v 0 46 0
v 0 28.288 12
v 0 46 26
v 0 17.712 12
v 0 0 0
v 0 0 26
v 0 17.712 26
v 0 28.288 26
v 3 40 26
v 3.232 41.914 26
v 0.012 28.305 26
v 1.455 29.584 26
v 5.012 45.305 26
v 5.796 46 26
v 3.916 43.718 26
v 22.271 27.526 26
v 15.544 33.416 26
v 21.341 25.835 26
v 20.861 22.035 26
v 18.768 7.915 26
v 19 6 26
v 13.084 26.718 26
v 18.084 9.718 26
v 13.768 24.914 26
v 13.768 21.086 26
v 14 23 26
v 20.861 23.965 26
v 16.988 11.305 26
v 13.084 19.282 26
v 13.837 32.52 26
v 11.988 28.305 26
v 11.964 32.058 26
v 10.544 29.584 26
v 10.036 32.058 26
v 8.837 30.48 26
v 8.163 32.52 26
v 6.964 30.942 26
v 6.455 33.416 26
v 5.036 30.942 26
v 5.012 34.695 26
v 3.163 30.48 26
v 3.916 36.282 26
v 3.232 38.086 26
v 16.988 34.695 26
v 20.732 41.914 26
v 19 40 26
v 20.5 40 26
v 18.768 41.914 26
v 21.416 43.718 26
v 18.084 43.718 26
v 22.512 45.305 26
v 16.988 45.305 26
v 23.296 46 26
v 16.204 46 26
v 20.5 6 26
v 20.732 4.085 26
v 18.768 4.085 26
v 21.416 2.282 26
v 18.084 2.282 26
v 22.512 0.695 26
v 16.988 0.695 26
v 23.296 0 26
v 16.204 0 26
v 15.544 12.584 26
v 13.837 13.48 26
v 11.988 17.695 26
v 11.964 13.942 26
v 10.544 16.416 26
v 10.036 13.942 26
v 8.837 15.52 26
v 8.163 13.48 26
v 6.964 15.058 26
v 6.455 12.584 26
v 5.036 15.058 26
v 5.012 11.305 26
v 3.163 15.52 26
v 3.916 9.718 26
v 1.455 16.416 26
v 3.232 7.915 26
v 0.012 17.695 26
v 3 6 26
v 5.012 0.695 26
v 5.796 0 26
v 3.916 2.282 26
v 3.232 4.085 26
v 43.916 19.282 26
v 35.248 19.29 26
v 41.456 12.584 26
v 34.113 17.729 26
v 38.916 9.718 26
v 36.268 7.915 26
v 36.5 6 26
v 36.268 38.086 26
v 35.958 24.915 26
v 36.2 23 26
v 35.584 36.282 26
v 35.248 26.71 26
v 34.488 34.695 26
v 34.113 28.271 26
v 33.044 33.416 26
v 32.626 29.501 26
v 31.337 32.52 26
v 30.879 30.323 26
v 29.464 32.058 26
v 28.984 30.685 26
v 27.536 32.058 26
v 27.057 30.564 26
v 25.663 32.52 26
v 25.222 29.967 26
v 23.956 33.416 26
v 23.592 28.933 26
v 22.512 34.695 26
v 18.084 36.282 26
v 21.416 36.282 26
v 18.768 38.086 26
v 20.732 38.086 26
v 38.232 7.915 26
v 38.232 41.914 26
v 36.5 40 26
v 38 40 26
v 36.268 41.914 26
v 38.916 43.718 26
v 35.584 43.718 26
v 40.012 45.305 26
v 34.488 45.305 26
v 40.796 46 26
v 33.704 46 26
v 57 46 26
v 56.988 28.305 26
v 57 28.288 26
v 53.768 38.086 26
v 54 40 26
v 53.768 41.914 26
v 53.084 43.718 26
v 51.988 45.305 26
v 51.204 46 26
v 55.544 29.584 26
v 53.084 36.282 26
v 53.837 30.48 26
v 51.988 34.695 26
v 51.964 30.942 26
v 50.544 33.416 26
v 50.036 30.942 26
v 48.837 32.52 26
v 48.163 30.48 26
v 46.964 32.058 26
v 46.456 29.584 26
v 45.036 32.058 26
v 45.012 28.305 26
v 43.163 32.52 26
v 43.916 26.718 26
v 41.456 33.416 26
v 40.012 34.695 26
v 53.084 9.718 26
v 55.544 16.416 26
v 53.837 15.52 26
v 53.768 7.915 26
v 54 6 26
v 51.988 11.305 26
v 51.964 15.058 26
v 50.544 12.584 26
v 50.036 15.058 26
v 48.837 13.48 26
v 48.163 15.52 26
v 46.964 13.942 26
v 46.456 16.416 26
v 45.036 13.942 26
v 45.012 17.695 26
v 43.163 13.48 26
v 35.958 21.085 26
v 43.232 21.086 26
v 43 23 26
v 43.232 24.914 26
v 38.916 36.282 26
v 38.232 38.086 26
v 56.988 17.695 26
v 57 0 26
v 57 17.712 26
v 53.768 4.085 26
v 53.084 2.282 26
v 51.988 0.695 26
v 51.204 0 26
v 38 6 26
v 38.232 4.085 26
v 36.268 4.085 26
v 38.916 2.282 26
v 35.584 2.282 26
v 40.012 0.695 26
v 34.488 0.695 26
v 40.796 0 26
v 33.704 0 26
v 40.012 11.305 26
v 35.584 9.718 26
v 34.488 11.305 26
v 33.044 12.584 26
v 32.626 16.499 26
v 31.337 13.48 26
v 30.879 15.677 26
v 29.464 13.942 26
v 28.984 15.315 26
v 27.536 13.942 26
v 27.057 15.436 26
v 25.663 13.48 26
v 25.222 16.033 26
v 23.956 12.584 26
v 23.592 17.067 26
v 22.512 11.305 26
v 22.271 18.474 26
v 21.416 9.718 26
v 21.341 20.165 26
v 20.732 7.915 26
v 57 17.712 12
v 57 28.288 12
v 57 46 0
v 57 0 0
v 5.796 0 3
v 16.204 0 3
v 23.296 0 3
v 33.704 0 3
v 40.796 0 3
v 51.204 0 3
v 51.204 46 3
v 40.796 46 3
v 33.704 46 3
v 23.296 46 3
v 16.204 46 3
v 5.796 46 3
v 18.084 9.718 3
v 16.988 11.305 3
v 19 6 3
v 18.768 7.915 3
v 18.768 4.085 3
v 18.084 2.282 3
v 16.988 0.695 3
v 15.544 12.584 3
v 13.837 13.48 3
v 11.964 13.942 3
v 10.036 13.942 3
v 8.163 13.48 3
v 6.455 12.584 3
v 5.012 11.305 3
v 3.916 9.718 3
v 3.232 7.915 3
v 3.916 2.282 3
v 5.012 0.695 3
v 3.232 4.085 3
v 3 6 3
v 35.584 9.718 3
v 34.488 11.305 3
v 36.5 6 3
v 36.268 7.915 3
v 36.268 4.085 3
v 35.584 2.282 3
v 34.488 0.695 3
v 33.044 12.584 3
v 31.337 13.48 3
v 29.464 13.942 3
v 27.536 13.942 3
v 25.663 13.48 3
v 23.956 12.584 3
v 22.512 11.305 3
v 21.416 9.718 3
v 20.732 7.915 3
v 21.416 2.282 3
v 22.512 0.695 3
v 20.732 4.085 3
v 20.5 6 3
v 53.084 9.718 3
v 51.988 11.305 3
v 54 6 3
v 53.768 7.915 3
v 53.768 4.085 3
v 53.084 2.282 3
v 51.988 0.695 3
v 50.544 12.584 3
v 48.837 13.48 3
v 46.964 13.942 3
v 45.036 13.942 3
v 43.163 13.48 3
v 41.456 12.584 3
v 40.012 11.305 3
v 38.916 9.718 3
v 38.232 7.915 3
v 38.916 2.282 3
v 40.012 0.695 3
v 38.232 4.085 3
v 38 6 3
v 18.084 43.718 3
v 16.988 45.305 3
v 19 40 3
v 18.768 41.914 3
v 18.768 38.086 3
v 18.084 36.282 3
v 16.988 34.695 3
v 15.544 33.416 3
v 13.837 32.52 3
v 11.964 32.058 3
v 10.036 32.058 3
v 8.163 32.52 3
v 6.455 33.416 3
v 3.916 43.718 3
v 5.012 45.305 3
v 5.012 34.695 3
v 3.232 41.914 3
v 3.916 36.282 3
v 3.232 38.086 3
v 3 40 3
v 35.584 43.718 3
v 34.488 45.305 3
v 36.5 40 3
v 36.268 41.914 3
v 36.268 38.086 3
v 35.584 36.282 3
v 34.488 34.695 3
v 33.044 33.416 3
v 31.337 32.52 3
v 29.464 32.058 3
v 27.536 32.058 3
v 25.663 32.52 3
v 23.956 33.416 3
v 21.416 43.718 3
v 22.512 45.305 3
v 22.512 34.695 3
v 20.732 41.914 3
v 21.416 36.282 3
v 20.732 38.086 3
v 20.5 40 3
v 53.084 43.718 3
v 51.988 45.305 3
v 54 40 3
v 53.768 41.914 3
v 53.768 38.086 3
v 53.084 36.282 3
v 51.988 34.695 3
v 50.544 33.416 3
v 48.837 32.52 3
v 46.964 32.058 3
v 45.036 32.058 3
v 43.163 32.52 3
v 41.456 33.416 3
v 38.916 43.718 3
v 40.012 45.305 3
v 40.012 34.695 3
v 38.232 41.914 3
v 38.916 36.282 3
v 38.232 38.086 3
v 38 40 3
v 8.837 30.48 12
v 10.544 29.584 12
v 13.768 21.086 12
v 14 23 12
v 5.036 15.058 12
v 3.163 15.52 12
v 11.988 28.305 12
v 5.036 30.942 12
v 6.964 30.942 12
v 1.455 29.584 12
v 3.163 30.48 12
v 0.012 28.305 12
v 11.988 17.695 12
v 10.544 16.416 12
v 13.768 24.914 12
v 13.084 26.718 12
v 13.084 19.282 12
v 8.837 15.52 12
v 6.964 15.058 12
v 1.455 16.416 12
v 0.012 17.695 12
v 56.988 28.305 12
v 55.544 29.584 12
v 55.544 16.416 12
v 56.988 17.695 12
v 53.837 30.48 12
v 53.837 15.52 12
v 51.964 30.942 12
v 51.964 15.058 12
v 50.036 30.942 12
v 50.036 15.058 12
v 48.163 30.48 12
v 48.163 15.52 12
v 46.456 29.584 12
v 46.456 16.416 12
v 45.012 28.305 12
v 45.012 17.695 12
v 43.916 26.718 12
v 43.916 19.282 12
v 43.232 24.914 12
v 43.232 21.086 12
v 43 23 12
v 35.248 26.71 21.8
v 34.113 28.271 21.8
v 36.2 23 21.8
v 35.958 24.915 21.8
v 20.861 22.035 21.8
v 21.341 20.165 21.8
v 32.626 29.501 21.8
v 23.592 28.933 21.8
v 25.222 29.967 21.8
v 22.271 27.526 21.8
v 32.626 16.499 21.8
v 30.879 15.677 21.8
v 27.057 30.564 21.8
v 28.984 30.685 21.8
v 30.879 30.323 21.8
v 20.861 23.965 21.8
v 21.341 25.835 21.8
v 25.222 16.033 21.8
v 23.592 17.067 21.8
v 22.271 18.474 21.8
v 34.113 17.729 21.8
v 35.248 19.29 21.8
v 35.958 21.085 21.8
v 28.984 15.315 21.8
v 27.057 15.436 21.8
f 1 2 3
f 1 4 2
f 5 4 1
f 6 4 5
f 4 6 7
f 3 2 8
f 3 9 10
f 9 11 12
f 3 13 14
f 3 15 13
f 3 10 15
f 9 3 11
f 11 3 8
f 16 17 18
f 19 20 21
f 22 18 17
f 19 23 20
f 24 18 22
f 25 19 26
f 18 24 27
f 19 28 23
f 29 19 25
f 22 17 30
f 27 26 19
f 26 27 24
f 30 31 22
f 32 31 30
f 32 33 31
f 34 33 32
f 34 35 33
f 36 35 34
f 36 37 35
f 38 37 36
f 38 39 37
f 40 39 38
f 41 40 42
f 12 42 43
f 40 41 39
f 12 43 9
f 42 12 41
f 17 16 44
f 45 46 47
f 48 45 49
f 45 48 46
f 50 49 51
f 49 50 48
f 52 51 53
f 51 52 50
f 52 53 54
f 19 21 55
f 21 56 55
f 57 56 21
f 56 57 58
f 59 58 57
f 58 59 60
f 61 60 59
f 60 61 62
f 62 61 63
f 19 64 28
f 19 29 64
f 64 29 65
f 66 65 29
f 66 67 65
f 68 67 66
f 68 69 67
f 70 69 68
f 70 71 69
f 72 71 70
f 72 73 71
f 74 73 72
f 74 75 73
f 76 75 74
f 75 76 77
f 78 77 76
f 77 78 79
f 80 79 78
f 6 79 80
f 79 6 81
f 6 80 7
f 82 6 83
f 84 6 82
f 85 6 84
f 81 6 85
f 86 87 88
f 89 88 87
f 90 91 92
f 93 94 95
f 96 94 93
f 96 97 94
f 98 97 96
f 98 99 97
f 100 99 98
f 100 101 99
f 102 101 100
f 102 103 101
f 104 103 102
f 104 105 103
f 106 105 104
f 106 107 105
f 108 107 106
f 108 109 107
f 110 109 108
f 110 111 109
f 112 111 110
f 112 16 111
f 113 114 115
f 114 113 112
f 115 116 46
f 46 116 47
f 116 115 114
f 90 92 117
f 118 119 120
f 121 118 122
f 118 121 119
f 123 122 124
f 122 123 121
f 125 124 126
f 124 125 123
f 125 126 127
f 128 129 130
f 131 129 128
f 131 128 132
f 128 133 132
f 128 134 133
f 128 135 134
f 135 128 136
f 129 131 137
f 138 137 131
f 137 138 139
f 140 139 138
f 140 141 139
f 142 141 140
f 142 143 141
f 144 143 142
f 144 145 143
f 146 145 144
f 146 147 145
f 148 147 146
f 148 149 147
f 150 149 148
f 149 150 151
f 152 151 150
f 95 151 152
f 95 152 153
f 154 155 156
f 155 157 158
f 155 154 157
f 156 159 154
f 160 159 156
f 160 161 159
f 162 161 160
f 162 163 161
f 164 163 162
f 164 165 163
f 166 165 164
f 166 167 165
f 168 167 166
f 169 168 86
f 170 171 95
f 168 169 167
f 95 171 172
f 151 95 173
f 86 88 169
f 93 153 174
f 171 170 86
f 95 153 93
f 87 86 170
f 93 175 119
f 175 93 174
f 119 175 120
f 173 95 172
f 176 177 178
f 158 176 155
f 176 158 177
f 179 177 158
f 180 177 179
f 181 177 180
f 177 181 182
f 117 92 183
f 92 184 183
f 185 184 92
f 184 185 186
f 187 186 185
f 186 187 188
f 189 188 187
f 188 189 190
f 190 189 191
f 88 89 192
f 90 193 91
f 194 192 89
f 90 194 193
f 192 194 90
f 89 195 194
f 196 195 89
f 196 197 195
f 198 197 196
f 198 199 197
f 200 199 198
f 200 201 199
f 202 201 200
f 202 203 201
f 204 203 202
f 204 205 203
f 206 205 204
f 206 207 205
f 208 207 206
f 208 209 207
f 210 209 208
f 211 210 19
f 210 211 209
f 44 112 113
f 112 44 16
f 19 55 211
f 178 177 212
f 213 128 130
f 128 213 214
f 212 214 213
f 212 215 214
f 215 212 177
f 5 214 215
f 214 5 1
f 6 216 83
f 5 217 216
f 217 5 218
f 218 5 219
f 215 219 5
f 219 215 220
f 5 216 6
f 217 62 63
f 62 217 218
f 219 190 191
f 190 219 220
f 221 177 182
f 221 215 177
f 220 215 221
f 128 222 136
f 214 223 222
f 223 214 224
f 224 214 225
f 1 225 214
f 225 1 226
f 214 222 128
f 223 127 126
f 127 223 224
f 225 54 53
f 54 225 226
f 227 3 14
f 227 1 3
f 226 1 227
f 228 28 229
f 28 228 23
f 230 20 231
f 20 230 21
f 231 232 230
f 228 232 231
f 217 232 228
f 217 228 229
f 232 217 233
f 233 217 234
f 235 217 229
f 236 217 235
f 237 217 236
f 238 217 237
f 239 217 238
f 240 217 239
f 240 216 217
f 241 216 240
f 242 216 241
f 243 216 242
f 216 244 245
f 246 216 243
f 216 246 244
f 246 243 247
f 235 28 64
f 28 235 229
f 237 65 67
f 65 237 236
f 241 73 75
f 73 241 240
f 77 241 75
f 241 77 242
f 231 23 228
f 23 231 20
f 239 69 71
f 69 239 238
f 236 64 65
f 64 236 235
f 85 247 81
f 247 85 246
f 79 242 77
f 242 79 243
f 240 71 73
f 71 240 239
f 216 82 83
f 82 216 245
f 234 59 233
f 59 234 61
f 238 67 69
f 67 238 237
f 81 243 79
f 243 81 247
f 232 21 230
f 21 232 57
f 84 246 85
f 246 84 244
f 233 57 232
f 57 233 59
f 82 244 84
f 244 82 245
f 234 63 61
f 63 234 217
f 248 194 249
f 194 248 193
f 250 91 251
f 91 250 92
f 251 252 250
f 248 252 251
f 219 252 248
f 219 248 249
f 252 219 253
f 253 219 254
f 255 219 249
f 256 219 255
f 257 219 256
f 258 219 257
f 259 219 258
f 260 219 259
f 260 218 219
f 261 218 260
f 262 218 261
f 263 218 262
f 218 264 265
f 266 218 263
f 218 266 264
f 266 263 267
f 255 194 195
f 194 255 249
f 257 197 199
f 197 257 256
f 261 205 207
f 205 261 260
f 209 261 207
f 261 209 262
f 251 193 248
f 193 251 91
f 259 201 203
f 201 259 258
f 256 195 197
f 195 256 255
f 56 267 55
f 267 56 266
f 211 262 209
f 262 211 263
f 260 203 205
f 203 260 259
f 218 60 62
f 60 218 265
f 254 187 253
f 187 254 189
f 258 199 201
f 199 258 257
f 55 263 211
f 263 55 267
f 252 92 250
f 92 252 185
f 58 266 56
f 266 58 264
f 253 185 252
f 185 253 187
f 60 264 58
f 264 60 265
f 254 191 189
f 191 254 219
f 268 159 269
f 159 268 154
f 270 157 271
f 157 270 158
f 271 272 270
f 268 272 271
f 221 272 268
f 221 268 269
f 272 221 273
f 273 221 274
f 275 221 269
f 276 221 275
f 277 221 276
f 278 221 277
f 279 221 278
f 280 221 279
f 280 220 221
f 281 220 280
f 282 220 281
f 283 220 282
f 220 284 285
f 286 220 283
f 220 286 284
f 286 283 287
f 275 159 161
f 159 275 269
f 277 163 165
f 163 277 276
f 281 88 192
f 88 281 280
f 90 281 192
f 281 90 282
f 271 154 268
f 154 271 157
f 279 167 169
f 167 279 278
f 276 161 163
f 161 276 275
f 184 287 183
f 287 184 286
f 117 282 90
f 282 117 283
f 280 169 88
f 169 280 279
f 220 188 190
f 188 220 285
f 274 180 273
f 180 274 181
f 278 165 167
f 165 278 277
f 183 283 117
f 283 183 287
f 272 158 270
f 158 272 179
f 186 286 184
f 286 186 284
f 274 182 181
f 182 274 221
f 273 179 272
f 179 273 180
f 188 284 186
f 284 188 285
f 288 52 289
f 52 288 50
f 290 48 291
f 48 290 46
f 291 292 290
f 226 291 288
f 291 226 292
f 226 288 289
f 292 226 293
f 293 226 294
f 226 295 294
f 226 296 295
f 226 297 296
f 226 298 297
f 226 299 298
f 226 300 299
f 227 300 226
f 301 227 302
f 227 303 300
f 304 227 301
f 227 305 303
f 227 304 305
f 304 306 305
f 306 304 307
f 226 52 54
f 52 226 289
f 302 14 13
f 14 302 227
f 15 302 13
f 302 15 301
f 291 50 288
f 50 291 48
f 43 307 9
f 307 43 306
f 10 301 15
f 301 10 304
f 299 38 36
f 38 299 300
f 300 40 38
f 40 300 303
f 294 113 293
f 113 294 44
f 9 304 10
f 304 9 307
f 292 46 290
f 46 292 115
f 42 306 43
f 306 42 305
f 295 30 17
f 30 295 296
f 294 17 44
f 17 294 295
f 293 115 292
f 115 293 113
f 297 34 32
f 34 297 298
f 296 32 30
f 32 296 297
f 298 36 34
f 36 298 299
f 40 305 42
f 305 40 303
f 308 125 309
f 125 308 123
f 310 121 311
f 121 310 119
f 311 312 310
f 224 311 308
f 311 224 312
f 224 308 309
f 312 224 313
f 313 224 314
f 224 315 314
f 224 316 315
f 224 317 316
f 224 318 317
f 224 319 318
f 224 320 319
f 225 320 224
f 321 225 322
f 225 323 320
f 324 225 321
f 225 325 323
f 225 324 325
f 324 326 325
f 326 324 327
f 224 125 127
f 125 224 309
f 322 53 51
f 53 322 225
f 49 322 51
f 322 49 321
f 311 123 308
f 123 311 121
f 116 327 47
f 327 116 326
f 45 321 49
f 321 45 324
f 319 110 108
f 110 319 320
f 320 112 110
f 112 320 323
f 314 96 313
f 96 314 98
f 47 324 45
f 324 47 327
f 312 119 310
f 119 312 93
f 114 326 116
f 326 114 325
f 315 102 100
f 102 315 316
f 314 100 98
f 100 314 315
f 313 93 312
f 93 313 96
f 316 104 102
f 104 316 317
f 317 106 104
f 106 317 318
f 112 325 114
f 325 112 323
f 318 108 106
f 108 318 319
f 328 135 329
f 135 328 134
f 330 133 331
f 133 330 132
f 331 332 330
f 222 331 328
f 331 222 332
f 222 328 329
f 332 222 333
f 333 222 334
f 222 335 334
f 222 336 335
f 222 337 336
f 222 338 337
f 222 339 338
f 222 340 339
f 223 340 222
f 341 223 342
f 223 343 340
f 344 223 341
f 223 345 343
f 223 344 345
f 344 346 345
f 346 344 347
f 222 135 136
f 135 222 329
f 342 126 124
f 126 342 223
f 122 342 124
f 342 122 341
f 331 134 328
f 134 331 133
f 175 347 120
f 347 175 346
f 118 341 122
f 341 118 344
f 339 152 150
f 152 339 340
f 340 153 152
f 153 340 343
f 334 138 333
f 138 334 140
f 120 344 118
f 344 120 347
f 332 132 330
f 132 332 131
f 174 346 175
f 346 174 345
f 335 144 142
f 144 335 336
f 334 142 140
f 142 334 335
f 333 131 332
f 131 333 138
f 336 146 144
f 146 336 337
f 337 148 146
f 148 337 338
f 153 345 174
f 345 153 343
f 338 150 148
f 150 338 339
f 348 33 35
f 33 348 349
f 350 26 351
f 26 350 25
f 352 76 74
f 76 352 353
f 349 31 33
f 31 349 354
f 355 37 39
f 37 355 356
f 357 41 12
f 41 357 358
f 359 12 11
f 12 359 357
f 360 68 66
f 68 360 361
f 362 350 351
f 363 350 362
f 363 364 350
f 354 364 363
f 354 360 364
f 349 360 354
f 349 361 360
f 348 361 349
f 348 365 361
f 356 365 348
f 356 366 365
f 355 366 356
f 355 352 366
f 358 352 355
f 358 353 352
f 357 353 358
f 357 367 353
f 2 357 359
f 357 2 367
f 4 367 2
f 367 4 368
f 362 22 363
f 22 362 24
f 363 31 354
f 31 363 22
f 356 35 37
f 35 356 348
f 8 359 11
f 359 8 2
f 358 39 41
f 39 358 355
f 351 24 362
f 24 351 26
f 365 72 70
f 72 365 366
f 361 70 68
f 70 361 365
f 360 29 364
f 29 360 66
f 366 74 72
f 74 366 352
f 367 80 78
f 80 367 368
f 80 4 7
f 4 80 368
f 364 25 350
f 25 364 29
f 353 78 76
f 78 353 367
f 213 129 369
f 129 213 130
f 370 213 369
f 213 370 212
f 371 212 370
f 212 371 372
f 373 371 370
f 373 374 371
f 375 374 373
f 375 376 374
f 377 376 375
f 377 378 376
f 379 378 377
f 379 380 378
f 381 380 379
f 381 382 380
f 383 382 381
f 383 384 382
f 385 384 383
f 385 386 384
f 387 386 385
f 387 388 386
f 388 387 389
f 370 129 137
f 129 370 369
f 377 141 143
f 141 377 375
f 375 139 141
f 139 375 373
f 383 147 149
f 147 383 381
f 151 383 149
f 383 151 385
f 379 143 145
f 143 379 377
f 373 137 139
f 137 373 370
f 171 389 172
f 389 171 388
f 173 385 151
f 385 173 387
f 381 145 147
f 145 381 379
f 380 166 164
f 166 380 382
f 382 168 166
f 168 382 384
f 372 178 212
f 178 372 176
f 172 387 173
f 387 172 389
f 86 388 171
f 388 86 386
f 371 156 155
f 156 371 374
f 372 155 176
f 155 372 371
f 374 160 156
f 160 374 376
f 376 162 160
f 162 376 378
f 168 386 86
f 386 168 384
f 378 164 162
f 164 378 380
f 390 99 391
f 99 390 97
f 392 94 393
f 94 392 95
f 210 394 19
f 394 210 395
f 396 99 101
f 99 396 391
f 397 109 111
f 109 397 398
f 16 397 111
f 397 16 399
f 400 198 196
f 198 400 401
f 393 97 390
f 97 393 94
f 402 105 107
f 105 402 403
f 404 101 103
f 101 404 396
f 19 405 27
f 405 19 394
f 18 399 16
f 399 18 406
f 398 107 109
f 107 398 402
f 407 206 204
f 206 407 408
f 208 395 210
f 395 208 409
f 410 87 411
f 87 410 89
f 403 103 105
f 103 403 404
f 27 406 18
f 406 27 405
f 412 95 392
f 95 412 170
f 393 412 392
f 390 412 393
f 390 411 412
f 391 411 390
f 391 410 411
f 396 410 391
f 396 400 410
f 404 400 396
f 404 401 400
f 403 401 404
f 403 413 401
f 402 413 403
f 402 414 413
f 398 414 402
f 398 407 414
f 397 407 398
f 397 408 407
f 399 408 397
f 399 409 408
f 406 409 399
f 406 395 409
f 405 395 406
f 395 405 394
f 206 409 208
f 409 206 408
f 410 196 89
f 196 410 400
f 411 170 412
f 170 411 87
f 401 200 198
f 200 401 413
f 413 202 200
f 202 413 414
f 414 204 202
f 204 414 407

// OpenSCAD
length = 57;
width = 46;
height = 26;

floorThickness = 3;

//Based on magnet size:
magnetBaseOuterDiameter = 20;
magnetBaseInnerDiameter = 15.4;
magnetHeight = 4.2;

smallCircleDiameter = 16;
smallCircleOffset = 2;

standardTokenHeight = 23;
waterTokenHeight = 14;


spaceBetweenCircles = 3;

difference(){
    cube([length, width, height]);

    translate([smallCircleDiameter/2 + spaceBetweenCircles, smallCircleDiameter/2 - smallCircleOffset, height - standardTokenHeight])
        cylinder(standardTokenHeight, d=smallCircleDiameter);

    translate([length /2, smallCircleDiameter/2 - smallCircleOffset, floorThickness])
        cylinder(height - floorThickness, d=smallCircleDiameter);
    
    translate([length - (smallCircleDiameter/2 + spaceBetweenCircles), smallCircleDiameter/2 - smallCircleOffset, height - standardTokenHeight])
        cylinder(standardTokenHeight, d=smallCircleDiameter);
    
    
    
    
    translate([smallCircleDiameter/2 + spaceBetweenCircles, width - (smallCircleDiameter/2 - smallCircleOffset), height - standardTokenHeight])
        cylinder(standardTokenHeight, d=smallCircleDiameter);

    translate([length /2, width - (smallCircleDiameter/2 - smallCircleOffset), height - standardTokenHeight])
        cylinder(standardTokenHeight, d=smallCircleDiameter);
    
    translate([length - (smallCircleDiameter/2 + spaceBetweenCircles), width - (smallCircleDiameter/2 - smallCircleOffset), height - standardTokenHeight])
        cylinder(standardTokenHeight, d=smallCircleDiameter);
    
    


    translate([smallCircleDiameter/2 - smallCircleOffset, width/2, height - waterTokenHeight])
        cylinder(waterTokenHeight, d=smallCircleDiameter);

    translate([length - (smallCircleDiameter/2 - smallCircleOffset), width/2, height - waterTokenHeight])
        cylinder(waterTokenHeight, d=smallCircleDiameter);
        
    translate([length/2, width/2, height - magnetHeight])
        cylinder(magnetHeight, d=magnetBaseInnerDiameter);
        

}
